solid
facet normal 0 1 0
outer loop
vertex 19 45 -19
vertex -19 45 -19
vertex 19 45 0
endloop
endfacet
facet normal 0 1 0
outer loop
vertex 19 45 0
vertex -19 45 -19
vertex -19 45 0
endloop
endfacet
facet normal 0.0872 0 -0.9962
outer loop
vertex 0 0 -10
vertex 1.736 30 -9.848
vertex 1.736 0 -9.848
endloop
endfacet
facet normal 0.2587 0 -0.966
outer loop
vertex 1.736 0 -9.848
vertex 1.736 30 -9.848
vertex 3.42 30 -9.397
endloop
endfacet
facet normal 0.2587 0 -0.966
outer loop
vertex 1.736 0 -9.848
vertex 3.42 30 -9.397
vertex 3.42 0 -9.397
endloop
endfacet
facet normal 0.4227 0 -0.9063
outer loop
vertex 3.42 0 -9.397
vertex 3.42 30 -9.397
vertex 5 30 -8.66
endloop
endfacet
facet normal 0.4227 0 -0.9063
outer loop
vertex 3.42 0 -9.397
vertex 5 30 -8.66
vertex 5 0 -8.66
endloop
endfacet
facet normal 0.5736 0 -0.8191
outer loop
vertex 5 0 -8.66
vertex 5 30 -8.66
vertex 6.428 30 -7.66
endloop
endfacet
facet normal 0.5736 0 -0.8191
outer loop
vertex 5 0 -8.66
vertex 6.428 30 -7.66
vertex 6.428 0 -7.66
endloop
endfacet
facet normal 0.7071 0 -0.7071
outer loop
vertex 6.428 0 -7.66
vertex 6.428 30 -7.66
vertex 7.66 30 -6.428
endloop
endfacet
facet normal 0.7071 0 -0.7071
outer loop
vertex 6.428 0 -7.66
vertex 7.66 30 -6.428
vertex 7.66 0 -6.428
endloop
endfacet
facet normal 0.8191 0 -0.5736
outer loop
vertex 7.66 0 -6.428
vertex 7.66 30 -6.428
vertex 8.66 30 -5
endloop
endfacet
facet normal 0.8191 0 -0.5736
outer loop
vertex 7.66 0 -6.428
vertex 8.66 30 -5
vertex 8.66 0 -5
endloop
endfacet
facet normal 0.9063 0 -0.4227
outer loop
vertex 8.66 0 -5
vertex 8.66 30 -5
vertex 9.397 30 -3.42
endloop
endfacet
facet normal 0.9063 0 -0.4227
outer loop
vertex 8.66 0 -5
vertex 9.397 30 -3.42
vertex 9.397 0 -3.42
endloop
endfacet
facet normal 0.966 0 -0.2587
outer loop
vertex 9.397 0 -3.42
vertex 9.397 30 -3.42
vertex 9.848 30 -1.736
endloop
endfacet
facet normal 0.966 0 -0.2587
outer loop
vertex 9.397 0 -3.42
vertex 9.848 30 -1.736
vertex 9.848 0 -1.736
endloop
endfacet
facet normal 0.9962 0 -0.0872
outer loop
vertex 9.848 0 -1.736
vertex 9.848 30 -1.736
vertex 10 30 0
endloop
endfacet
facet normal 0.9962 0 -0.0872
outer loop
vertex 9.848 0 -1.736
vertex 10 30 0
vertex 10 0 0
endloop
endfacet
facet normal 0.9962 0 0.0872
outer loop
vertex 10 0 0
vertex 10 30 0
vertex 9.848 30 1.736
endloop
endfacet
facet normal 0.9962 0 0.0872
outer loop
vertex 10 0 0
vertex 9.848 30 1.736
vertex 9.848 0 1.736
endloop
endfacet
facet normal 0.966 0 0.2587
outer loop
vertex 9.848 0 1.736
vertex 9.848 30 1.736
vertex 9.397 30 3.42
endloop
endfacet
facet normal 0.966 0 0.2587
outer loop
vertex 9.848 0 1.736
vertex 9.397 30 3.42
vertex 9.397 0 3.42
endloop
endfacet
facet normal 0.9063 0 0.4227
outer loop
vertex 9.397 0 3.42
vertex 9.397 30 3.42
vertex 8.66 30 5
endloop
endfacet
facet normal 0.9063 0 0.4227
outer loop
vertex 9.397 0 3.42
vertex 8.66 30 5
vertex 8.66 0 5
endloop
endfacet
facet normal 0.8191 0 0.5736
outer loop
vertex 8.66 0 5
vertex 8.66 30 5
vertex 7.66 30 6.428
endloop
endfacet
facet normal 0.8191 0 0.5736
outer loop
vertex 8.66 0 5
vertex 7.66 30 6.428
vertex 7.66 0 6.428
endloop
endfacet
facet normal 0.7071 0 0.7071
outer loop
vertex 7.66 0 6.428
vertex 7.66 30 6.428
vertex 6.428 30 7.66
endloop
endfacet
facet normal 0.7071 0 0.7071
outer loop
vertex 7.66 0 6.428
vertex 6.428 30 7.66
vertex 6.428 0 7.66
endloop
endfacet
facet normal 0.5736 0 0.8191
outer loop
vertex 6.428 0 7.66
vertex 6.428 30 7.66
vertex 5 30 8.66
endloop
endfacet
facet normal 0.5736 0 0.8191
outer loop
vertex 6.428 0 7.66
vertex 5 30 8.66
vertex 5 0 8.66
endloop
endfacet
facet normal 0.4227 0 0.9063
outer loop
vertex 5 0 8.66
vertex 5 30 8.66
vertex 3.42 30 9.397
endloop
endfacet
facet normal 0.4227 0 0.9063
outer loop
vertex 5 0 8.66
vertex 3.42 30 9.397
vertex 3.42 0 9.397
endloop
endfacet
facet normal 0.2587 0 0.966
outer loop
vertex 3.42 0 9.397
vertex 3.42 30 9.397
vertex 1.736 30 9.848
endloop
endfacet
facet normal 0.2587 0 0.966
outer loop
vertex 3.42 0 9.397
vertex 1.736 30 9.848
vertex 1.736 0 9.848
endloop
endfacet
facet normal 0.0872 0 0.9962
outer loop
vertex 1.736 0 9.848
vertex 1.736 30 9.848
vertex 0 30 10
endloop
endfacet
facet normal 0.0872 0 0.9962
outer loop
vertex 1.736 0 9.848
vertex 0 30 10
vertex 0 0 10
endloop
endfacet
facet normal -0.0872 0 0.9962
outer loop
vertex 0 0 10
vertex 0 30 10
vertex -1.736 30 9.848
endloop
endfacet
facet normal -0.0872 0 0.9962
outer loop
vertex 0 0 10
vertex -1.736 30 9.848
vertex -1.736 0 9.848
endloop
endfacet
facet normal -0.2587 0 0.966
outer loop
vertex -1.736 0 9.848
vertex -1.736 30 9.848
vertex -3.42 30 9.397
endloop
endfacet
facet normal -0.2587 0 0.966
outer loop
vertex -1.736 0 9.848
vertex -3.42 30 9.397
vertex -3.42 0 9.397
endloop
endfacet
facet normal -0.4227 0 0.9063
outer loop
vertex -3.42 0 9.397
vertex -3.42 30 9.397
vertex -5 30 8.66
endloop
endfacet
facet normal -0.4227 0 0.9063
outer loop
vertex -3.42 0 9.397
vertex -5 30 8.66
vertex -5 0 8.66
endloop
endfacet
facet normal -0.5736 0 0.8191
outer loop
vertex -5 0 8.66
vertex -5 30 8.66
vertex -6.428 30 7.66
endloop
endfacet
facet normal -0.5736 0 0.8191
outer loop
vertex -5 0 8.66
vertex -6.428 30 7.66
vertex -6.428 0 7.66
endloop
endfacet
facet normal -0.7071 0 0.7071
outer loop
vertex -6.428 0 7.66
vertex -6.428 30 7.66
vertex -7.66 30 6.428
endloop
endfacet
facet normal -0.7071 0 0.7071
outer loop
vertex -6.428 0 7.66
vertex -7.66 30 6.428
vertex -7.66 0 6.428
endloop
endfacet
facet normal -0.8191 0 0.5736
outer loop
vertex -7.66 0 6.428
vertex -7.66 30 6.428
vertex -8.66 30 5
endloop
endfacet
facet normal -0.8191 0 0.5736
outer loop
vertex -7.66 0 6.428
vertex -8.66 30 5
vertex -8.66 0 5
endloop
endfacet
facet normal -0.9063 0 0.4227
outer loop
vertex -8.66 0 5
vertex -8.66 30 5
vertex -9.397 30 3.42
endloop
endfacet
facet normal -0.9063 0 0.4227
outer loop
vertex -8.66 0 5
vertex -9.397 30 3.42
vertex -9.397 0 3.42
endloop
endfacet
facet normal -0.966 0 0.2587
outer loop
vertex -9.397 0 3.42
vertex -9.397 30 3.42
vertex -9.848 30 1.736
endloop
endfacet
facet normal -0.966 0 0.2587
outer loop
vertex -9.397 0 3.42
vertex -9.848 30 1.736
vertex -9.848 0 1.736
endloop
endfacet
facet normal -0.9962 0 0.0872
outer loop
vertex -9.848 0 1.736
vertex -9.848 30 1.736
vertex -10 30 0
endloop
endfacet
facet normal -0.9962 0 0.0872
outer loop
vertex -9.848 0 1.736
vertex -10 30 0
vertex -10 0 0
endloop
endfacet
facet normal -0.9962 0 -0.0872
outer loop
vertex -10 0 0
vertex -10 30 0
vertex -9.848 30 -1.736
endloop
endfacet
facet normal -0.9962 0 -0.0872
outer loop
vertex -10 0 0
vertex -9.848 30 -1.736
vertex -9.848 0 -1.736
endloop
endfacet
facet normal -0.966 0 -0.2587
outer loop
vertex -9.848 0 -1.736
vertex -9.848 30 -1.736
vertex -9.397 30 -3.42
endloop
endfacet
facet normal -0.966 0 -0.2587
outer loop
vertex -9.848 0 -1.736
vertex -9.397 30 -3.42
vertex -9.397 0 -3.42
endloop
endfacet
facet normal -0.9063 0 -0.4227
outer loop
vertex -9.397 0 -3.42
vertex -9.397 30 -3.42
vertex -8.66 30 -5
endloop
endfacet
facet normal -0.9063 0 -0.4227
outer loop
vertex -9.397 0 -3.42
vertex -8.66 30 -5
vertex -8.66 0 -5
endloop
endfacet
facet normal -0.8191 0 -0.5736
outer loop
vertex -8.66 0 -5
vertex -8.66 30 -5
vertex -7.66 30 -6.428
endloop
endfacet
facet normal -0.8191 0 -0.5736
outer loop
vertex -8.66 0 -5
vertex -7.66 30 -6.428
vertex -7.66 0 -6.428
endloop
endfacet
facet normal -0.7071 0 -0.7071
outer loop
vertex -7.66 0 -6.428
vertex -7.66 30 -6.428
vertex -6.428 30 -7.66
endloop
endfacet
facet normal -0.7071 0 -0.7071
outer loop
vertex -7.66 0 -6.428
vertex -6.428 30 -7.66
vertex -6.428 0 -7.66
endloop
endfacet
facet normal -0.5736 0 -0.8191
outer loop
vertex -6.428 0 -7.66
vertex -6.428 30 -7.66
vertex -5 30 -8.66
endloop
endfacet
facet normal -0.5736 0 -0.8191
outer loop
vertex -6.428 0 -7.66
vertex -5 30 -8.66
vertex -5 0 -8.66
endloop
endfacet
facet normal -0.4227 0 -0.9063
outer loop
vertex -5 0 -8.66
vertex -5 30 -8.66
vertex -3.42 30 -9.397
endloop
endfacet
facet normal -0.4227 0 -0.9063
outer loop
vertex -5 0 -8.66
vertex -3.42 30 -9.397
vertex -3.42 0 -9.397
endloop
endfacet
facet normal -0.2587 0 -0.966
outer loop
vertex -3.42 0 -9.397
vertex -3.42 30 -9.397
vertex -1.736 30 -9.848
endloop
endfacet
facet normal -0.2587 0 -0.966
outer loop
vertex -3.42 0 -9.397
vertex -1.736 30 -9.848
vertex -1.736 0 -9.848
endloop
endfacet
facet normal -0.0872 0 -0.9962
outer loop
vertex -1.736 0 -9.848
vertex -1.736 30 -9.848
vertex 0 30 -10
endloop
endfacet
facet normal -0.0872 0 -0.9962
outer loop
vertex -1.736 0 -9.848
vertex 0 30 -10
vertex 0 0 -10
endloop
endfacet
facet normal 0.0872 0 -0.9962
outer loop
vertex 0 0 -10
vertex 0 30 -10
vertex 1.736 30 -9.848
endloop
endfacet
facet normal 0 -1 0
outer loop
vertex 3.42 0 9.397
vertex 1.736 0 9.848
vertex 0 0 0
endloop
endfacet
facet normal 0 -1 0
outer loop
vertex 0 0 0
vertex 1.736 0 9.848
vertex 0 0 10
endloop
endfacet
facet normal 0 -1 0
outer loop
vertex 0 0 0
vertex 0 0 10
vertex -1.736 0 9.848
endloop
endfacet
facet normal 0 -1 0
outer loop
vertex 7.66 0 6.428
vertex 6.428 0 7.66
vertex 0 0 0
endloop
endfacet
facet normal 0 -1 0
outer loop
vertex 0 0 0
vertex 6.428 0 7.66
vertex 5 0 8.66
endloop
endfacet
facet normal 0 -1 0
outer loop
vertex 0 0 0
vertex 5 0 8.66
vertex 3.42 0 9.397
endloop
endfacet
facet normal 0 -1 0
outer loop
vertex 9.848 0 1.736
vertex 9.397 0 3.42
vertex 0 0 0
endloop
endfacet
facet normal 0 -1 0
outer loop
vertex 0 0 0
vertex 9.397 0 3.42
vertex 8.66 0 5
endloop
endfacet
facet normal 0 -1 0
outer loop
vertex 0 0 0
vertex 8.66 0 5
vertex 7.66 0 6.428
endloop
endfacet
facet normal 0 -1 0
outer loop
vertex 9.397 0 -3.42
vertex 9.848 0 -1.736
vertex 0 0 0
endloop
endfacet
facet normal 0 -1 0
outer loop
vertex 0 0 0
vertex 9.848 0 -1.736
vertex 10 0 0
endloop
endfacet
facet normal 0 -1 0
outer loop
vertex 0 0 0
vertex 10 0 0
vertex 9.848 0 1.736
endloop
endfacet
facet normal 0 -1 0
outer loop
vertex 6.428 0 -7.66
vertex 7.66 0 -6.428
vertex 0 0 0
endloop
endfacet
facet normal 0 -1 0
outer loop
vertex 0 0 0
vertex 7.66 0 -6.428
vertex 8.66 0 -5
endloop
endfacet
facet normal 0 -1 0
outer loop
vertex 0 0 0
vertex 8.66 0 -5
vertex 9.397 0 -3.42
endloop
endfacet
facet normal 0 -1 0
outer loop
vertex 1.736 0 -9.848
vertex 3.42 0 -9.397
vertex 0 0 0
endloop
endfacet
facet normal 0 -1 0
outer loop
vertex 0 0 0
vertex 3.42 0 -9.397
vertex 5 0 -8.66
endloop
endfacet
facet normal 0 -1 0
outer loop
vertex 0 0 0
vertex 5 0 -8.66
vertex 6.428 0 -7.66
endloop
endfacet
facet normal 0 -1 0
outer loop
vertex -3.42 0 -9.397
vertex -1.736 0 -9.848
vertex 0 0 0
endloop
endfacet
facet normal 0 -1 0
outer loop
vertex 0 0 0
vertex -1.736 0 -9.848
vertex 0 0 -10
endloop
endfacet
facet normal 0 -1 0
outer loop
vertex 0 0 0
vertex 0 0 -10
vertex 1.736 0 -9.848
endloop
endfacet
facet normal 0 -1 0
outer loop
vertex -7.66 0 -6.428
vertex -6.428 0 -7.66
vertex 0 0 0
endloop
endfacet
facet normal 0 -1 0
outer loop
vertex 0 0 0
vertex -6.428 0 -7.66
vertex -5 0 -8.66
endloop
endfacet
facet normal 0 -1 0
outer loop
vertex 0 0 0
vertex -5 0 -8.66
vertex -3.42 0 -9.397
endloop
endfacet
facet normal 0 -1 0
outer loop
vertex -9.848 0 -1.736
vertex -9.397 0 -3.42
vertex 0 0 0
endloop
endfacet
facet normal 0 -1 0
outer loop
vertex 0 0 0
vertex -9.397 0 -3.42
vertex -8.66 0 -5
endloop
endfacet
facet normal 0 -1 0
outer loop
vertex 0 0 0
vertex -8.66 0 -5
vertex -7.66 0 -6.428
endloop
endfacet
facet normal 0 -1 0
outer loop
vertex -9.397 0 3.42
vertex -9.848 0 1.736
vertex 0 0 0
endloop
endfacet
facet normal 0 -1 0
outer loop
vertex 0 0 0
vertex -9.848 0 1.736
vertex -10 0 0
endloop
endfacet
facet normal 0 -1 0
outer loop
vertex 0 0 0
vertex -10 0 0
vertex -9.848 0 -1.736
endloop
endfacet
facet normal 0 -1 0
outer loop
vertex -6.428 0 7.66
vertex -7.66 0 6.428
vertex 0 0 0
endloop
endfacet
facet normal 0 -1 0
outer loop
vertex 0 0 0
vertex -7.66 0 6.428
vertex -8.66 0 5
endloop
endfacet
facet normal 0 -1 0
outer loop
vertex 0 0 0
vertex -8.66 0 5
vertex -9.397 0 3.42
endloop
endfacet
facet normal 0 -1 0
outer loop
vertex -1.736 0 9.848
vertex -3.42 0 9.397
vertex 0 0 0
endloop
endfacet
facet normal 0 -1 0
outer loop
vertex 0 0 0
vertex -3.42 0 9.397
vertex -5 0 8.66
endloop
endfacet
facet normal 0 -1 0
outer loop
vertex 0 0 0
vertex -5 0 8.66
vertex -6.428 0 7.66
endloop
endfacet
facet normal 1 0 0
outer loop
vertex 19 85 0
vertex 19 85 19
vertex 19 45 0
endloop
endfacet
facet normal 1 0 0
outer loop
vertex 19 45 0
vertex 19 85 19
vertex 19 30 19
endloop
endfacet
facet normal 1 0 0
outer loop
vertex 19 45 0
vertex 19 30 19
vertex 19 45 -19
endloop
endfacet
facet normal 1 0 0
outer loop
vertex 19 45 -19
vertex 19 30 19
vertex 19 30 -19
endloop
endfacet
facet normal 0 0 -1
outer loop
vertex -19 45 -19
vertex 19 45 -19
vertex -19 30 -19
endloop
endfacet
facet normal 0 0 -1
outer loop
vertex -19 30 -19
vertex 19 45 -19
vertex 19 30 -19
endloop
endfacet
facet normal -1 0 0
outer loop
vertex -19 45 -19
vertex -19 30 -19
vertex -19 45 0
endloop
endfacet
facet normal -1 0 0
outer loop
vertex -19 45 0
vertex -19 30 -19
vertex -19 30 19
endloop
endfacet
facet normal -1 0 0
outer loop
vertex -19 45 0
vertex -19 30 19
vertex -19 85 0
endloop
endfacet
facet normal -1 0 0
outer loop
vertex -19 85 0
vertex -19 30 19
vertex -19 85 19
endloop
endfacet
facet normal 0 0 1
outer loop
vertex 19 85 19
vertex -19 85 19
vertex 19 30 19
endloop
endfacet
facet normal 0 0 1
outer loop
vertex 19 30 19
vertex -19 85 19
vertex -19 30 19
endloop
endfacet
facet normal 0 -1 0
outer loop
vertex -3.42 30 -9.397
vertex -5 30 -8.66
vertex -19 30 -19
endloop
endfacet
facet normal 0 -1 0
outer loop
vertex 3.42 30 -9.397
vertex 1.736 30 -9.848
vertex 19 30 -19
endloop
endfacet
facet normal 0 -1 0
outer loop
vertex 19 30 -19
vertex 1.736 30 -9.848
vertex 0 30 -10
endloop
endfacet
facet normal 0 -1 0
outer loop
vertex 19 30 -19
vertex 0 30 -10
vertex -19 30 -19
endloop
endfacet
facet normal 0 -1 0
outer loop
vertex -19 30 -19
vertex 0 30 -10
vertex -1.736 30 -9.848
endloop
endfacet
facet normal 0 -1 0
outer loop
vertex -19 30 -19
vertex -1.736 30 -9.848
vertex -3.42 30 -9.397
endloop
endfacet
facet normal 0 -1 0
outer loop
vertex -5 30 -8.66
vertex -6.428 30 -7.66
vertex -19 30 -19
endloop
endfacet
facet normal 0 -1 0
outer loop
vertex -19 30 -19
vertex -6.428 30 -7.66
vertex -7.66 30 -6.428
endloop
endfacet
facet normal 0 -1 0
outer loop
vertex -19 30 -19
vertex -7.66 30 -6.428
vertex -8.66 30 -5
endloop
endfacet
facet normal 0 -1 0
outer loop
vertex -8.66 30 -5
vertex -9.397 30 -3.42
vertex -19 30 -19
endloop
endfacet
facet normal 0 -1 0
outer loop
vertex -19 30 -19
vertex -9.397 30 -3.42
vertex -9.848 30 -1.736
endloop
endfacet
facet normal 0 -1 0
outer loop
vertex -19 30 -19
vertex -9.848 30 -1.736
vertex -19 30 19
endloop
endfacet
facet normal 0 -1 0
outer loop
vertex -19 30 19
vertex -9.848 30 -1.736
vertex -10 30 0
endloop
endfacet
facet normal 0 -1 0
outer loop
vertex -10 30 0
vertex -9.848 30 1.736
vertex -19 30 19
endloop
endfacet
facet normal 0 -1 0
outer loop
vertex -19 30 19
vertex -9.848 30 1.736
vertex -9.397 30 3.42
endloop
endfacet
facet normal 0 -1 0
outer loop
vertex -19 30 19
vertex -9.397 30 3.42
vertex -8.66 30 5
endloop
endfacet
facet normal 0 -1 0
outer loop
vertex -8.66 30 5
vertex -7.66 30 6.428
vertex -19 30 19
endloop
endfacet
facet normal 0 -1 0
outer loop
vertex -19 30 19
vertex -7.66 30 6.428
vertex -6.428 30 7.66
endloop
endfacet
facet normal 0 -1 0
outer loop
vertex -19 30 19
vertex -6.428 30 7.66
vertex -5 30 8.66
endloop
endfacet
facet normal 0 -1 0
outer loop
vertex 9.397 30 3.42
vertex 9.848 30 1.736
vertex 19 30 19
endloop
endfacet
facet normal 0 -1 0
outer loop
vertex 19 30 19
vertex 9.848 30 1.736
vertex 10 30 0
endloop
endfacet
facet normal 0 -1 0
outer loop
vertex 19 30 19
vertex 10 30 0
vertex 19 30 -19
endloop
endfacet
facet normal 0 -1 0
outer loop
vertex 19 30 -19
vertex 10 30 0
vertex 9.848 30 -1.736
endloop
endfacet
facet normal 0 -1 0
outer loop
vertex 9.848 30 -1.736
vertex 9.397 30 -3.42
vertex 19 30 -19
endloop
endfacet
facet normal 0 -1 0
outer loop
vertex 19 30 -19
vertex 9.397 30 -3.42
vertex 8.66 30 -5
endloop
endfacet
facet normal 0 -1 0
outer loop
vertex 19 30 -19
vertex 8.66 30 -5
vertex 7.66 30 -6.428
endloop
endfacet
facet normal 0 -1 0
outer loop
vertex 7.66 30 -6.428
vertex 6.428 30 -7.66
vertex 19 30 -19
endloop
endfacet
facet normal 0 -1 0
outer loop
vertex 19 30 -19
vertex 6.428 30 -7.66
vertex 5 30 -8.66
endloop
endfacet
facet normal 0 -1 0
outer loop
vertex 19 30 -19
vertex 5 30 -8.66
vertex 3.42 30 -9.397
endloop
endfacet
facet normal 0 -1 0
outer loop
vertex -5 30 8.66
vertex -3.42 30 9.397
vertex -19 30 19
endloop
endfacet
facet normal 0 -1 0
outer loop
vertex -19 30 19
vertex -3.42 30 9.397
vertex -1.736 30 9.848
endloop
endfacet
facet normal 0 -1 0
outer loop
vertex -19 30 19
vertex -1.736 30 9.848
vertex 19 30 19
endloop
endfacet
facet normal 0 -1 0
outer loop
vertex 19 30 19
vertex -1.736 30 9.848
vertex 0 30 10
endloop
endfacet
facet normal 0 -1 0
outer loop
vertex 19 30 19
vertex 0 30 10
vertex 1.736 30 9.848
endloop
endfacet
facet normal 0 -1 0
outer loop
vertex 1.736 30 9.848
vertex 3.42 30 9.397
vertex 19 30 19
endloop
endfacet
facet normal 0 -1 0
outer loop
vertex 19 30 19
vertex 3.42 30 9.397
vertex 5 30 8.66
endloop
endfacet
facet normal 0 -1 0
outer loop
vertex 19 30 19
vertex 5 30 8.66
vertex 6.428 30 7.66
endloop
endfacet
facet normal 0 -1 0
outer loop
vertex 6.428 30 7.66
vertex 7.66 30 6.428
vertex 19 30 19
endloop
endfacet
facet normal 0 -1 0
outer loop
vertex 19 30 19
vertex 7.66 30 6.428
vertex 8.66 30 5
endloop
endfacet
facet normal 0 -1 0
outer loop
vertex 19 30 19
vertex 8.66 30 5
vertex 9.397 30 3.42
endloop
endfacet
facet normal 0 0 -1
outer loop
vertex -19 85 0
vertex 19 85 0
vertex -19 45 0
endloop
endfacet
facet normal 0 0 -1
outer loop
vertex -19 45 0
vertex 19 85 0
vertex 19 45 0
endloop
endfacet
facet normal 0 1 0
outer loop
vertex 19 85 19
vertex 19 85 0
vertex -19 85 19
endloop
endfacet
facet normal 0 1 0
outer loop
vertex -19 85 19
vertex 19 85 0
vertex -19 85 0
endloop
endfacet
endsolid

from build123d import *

# Parameters (mm, degrees)
SKETCH1_R           = 10
BOSS_EXTRUDE1_DEPTH = 30
SKETCH2_W           = 38
SKETCH2_H           = 38
BOSS_EXTRUDE2_DEPTH = 15
SKETCH3_W           = 38
SKETCH3_H           = 19
BOSS_EXTRUDE3_DEPTH = 40


with BuildPart() as part:
    # Sketch1 → Boss-Extrude1 (new body)
    with BuildSketch(Plane(origin=(0, 0, 0), x_dir=(1, 0, 0), z_dir=(0, 1, 0))):
        with Locations(Location((0, 0, 0), (0, 0, 270))):
            Circle(SKETCH1_R)
    extrude(amount=BOSS_EXTRUDE1_DEPTH)

    # Sketch2 → Boss-Extrude2 (add)
    with BuildSketch(Plane(origin=(0, 30, 0), x_dir=(1, 0, 0), z_dir=(0, 1, 0))):
        Rectangle(SKETCH2_W, SKETCH2_H)
    extrude(amount=BOSS_EXTRUDE2_DEPTH)

    # Sketch3 → Boss-Extrude3 (add)
    with BuildSketch(Plane(origin=(0, 45, 0), x_dir=(1, 0, 0), z_dir=(0, 1, 0))):
        with Locations((0, -9.5)):
            Rectangle(SKETCH3_W, SKETCH3_H)
    extrude(amount=BOSS_EXTRUDE3_DEPTH)


solid = part.part
